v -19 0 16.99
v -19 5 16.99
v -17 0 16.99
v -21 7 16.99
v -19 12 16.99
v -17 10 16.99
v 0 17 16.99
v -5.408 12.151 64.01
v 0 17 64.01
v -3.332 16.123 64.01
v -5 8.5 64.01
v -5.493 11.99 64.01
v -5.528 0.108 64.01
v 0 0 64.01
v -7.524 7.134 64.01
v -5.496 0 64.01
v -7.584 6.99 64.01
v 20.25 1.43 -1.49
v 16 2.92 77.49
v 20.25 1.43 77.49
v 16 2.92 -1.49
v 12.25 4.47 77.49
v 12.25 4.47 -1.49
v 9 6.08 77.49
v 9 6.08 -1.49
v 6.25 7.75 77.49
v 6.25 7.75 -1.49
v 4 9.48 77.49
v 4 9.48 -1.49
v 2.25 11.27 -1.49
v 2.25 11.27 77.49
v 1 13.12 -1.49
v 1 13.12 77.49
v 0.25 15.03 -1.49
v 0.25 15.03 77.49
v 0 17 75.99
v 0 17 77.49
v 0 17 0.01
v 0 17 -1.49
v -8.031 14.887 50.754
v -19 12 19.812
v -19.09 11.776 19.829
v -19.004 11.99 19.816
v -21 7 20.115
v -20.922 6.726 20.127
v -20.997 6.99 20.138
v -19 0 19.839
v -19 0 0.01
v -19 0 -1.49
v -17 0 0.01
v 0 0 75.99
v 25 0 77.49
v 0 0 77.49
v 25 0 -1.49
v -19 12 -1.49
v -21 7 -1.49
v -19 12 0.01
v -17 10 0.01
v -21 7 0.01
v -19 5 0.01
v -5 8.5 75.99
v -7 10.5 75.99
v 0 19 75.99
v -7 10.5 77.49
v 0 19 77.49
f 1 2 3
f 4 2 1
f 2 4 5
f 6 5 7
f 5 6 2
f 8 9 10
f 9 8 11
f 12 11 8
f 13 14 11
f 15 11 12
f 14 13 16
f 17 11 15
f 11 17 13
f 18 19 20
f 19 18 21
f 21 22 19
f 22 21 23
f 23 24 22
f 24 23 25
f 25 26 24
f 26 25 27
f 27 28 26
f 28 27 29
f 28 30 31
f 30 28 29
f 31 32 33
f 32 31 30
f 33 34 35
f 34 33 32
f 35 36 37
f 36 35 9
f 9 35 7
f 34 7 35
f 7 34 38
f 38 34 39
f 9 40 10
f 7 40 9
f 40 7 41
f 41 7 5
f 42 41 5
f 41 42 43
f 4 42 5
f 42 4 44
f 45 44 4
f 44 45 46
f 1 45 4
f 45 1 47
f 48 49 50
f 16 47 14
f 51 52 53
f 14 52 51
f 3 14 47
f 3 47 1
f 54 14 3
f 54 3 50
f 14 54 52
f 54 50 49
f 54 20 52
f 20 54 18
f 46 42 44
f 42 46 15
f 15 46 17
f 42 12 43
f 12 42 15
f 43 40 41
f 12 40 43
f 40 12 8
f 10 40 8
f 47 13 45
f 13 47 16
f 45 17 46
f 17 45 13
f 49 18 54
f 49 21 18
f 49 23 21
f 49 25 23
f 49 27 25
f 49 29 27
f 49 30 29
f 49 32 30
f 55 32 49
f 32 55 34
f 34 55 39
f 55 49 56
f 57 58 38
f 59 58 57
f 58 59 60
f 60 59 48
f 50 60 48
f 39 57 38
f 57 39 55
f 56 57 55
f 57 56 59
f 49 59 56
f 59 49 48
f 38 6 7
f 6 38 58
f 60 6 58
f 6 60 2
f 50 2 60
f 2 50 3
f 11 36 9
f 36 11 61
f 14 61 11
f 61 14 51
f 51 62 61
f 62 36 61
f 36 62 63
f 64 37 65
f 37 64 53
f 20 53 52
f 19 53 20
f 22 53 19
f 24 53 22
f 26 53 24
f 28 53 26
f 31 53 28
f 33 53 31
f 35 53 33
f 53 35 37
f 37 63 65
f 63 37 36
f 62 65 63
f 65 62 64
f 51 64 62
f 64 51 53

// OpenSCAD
// file: vector.scad
function is_nan(x) = x != x ;

// reverse vector
function reverse(v) = [for (i =[len(v)-1:-1:0]) v[i]];
// repeat vector n-times
function repeat(v, n) = [for (i=[0:n*len(v)-1])  v[ i%len(v) ] ];
// allow negative indexes for vector (counting from the back). -1 is last element in array
function v_index(v, n) = is_undef(n) ? len(v) : n < 0 ? len(v)+n : n ;
// cut slice of vertor. `start` included , `end` excluded.
function slice(v, start, end=undef) = [for (i=[start:v_index(v,end)-1]) v[i] ];

function v_add(v, n) = [for (i=[0:len(v)-1]) v[i]+n ];

assert(reverse([1,2,3]) == [3,2,1]);
assert(repeat([1,2],3) ==  [1, 2, 1, 2, 1, 2]);
assert(v_index([1,2,3],-1)==2);
assert(v_index([1,2,3],0) == 0);
assert(v_index([1,2,3],undef)==3);
assert(slice([1,2,3],1,-1)==[2]);
assert(slice([1,2,3],1)==[2,3]);
assert(v_add([1,2,3],1)==[2,3,4]);
// file: 2d.scad
use <vector.scad>

function max_x(a, i = 0) = (len(a) == 0) ? 0 : (i < len(a) - 1) ? max(a[i][0], max_x(a, i+1)) : a[i][0];
function shift_x(a, dx, scaler=1) = [for ( p=a) [scaler*p[0]+dx,p[1]] ];

function scale_poly(a, s=[1,1]) = [for (p=a) [ s[0]*p[0], s[1]*p[1] ]];
function shift_poly(a, d=[0,0]) = [for (p=a) [ d + p ]];

function inverse_x(a) = shift_x(reverse(a),max_x(a),-1);
function mirror_x(a) = shift_x(reverse(a),0,-1);

function symmetry_x(a) = scale_poly(reverse(a),s=[-1,1]);
function symmetry_y(a) = scale_poly(reverse(a),s=[1,-1]);

function concat_with_undefs(prev,next) = 
    len(prev) == 0 ? next : 
        let (prev_last_p = prev[v_index(prev,-1)]) 
        is_undef(prev_last_p[1])  
            ? concat(slice(prev,0,-1),[[prev_last_p[0],next[0][1]]],next) 
            : is_undef(next[0][1]) 
                ? concat(prev, [[next[0][0],prev_last_p[1]]], slice(next,1)) 
                : concat(prev, next) ;

function join_poly(polys, r = [], i=0) = (i < len(polys)) ? 
    join_poly( polys, concat_with_undefs(r,shift_x(polys[i],max_x(r))) ,i+1) : r;

function line_segment(p1,p2) = [p1,[p2[0]-p1[0], p2[1] - p1[1]]];

function ls_slope(ls) = ls[1][1]/ls[1][0] ;

function ls_distance(ls) = sqrt(pow(ls[1][1],2)+pow(ls[1][0],2));

function ls_angle(ls) = 
    let (ss = sign(ls[1][1]) == -1 ? -1 : 1)
    let (sc = sign(ls[1][0]) == -1 ? -1 : 1)
    let (ts = asin(ls[1][1]/ls_distance(ls))) 
    ts != 0 ? ( sc == -1 ? ss * 180 - ts : ts ) : ss*acos(ls[1][0]/ls_distance(ls))  ;
    
assert(ls_angle([[0, 0], [1, 0]])==0);
assert(ls_angle([[0, 0], [-1, 0]])==180);


function angle_diff_cw(a1, a2) = a1 < a2 ? angle_diff_cw(a1+360, a2) : a1 - a2 ;

function angle_diff_ccw(a1, a2) = angle_diff_cw(a2, a1);

function ls_midpoint(ls) = ls[0]+ls[1]/2;

function ls_endpoint(ls) = ls[0]+ls[1];

function line(slope,pt) = [slope, pt[1]-slope*pt[0]];

function l_y(l,x) = l[0]*x + l[1];

function l_segment(l,x1,x2) = line_segment([x1, l_y(l,x1)], [x2, l_y(l,x2)]);

function ls_line(ls) = let(slope=ls_slope(ls)) line(slope,ls[0]);

function ls_perpendicular(ls) = 
    let (l = ls_line(ls)) 
    let (mp = ls_midpoint(ls))
    line(-1/l[0], mp);

function intersect_lines(l1, l2) = 
    let (x = (l2[1]-l1[1])/(l1[0]-l2[0]))
    [x,l_y(l1,x)];

function interpolate_point(ls,fraction) =  [
    ls[0][0] + fraction*ls[1][0],
    ls[0][1] + fraction*ls[1][1]
];


function bezier_curve( a, b, c ) =
    len(a)==3 ? _bezier_curve(a[0],a[1],a[2]) : _bezier_curve(a,b,c);

function _bezier_curve( p1, p2, p3 ) =
    [line_segment(p1,p2), line_segment(p2, p3)];

function curve_point(bc, fraction) =
    interpolate_point(
        line_segment(
            interpolate_point(bc[0],fraction), 
            interpolate_point(bc[1], fraction)), 
        fraction);

function bc_poly(bc, n_points=10) = [for ( f = [0:1/n_points:1]) curve_point(bc, f)] ;

function rake_poly(up_ramp, down_to_valley, n_of_valleys) = 
    join_poly(concat(
        [up_ramp],
        repeat(
            [
                down_to_valley, 
                inverse_x(down_to_valley) // up on other side of the valley
            ], 
            n_of_valleys),
        [inverse_x(up_ramp)] // down ramp
    ));

function arc_point(a,f) = 
    let(c = a[0])
    let(r = a[1])
    let(initial_angle = a[2])
    let(cw = a[3])
    let(range = a[4])
    let (angle = cw ? initial_angle - f * range : initial_angle + f * range)
    c+[r*cos(angle),r*sin(angle)];

function arc_poly(a, n_points=10) = [for ( f = [0:1/n_points:1]) arc_point(a, f)] ;

function arc( a, b, c ) =
    len(a)==3 ? _arc(a[0],a[1],a[2]) : _arc(a,b,c);

function _arc( p1, p2, p3 ) =
    let(ls1 = line_segment(p1,p2))
    let(ls2 = line_segment(p2,p3))
    let(ls3 = line_segment(p1,p3))    
    let(lp1 = ls_perpendicular(ls1))
    let(lp2 = ls_perpendicular(ls2))
    let(lp3 = ls_perpendicular(ls3))
    let(c12 = intersect_lines(lp1,lp2))
    let(c23 = intersect_lines(lp2,lp3))
    let(c13 = intersect_lines(lp1,lp3))
    let(c = !is_nan(c23[0]) ? c23 : !is_nan(c13[0])? c13 : c12 )
    let(r1 = line_segment(c,p1))
    let(r2 = line_segment(c,p2))
    let(r3 = line_segment(c,p3))
    let(r = ls_distance(r1))
    let(a1 = ls_angle(r1))
    let(a2 = ls_angle(r2))
    let(a3 = ls_angle(r3))
    let(cw = angle_diff_cw(a1,a2) < angle_diff_cw(a1,a3))
    let(a_diff = cw ? angle_diff_cw(a1,a3) : angle_diff_ccw(a1,a3))
    [c,r,a1,cw,a_diff];


// linear interpolation or extrapolation (middle by default or any ratio) 
// using 2 points `a` and `b`
function mid(a,b,ratio=.5) = b + (a-b)*ratio ; 

function triangle(a,b,split=.5,height=.5) =
    let (delta = (mid(a,b,height)-b) * [[0,1],[-1,0]])
    let (z = mid(a,b,split) + delta)
    [a,z,b];

assert(arc([0,0],[0,1],[1,1])==arc([[0,0],[0,1],[1,1]]));
assert(bezier_curve([0,0],[0,1],[1,1])==bezier_curve([[0,0],[0,1],[1,1]]));

// echo(arc([0,0],[0,1],[1,1]));
// echo(arc(triangle([0,0],[1,1],.5,-.5)));

assert(arc([0,0],[0,1],[1,1])==arc(triangle([0,0],[1,1],.5,-.5)));
assert(arc([1,1],[1,2],[2,2])==arc(triangle([1,1],[2,2],.5,-.5)));

// echo(arc([0,0],[1,0],[1,1]));
// echo(arc(triangle([0,0],[1,1],.5,.5)));

assert(arc([0,0],[1,0],[1,1])==arc(triangle([0,0],[1,1],.5,.5)));
assert(arc([1,1],[2,1],[2,2])==arc(triangle([1,1],[2,2],.5,.5)));

// echo(arc(triangle([1,0], [-1,0])));
assert(arc(triangle([1,0], [-1,0])) ==  [[0, 0], 1, 0, false, 180]);

// echo(arc(triangle([0,-1], [0,1])));
assert(arc(triangle([0,-1], [0,1])) ==  [[0, 0], 1, -90, false, 180]);

// echo(arc(triangle([0,-1], [0,1],height=-.5)));
assert(arc(triangle([0,-1], [0,1], height=-.5)) ==  [[0, 0], 1, -90, true, 180]);
// main file
use <2d.scad>

ramp = bc_poly(bezier_curve([0,17],[0,7],[25,0]));
m1 = [[0,0],[-5,8.5],[0,17]];
m2 =[[-17,0],[-19,5],[-17,10]];

h1 = 17;
h2 = 47;
h3 = 12;
e=.01;
q=1.5;

function addnz(xy,s) = [for (p = xy) sign(p)*s+p];
function bump(poly,s=2) = [for (xy = poly) addnz(xy,s)];

b1 = bump(m1);
b2 = bump(m2);

a = 17;
translate([0,0,e-q]) 
linear_extrude(height=q) 
    polygon(points=concat( ramp, b2 ));

linear_extrude(height=h1) 
    polygon(points=concat( ramp, m2 ));

diff=concat( [[-40,0]], b2, [b2[2]+[5,10], b2[2]+[-5,20]] );

function shift_y_by_e(poly) = [ for (xy = poly) [xy[0],xy[1]-e] ];

translate([0,0,h1-e]) 
    difference(){
        linear_extrude(height=h2+2*e) 
            polygon(points=concat( ramp, b2 ));
        rotate([0,a,0])
        translate([0,0,sin(a)*-17])
        linear_extrude(height=h2/cos(a)) 
            polygon(points=shift_y_by_e(diff));
        }

translate([0,0,h2+h1]) 
    linear_extrude(height=12) 
        polygon(points=concat( ramp, m1 ));

translate([0,0,h2+h1+h3-e]) 
    linear_extrude(height=q) 
        polygon(points=concat( ramp, b1 ));
